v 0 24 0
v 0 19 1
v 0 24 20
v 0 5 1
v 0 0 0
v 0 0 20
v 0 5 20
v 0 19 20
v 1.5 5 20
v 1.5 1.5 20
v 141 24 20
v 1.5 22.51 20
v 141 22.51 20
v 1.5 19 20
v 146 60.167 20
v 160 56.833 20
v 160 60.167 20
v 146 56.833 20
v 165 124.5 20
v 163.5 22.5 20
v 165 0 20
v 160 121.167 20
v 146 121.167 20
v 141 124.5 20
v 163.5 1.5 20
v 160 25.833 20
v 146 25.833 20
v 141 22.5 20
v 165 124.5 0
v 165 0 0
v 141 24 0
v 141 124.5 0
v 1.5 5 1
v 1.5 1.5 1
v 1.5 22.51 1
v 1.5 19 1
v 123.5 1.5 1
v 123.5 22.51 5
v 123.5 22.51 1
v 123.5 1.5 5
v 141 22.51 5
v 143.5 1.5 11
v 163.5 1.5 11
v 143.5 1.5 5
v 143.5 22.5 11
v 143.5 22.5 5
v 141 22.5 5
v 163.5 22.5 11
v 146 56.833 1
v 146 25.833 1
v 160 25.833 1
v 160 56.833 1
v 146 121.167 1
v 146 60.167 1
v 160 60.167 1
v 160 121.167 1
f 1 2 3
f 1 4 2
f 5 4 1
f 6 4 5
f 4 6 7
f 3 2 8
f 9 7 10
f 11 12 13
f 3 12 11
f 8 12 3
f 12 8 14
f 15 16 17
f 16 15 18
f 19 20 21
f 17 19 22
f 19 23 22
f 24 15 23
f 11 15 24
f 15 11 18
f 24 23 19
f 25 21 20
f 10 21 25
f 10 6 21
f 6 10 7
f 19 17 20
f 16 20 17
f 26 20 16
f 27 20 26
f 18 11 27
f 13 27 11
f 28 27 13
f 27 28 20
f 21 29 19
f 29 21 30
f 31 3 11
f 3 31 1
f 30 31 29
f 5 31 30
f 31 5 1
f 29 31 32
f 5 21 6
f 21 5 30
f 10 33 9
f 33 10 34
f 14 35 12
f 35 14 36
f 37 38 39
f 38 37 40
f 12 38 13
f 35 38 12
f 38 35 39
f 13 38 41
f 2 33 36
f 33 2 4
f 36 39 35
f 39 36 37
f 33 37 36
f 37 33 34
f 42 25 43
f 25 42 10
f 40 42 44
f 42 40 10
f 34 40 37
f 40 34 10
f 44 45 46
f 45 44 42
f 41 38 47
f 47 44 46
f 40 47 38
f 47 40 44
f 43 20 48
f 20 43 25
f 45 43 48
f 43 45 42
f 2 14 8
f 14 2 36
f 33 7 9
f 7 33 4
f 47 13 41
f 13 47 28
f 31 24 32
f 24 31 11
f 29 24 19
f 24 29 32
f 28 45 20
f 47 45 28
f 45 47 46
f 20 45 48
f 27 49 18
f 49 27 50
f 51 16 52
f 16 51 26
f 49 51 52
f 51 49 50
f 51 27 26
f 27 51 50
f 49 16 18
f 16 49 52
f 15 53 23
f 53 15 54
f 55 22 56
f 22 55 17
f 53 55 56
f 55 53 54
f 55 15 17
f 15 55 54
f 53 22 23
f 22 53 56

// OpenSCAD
FloorThickness = 1;
Padding = 1;
ComponentHeight = 2;
_min=.01;

// Retailer physical dimensions
RetailerWidth = 20;
RetailerLengthSmall = 120;
RetailerLengthMedium = 140;
RetailerLengthLarge = 160;
RetailerLengthPadding = 2;

// retailer tray parameters
RetailerTrayWidth = 24;  //hardcoded because this is the physical space in the box
RetailerWalls = (RetailerTrayWidth - (RetailerWidth + Padding)) / 2;
RetailerTrayLength = RetailerLengthLarge + RetailerLengthPadding + (2 * RetailerWalls);
RetailerTrayHeight = 20;
RetailerTrayCutoutRidgeWidth = 5;

// Research physical dimensions
PatentLength = 30;
TechnologyLength = 60;

// research tray parameters
ResearchTrayWidth = 24; //hardcoded because this is the physical space in the box
ResearchWallsx = (ResearchTrayWidth - ((ComponentHeight * 6) + (Padding*2))) / 2;
ResearchWallsy = (ResearchTrayWidth - ((ComponentHeight * 6) + (Padding*2))) / 3;
ResearchTrayLength = (3 * ResearchWallsy) + (PatentLength + Padding) + (TechnologyLength + Padding);
ResearchTrayHeight = 20; //hardcoded because this is the physical space in the box


//build retailer tray
difference() {
    cube([RetailerTrayLength, RetailerTrayWidth, RetailerTrayHeight]);
    
    // small retailer layer
    translate([RetailerWalls, RetailerWalls, FloorThickness])
        cube([RetailerLengthSmall + RetailerLengthPadding, RetailerWidth + Padding + _min, RetailerTrayHeight]);
    
    // medium retailer layer
    translate([RetailerWalls, RetailerWalls, FloorThickness + (2 * ComponentHeight)])
        cube([RetailerLengthMedium + RetailerLengthPadding, RetailerWidth + Padding + _min, RetailerTrayHeight]);
    
    // large retailer layer
    translate([RetailerWalls, RetailerWalls, FloorThickness + (5 * ComponentHeight)])
        cube([RetailerLengthLarge + RetailerLengthPadding, RetailerWidth + Padding + _min, RetailerTrayHeight]);
    
    // finger cutout
    translate([-_min, RetailerTrayCutoutRidgeWidth, FloorThickness])
        cube([RetailerWalls+(2*_min), RetailerTrayWidth - (2 * RetailerTrayCutoutRidgeWidth), RetailerTrayHeight]);
}
union()

//build technologies tray
difference() {
translate([RetailerTrayLength - ResearchTrayWidth, RetailerTrayWidth - RetailerWalls, 0])
    cube([ResearchTrayWidth, ResearchTrayLength, ResearchTrayHeight]);

    anchorx = RetailerTrayLength - ResearchTrayWidth;
    anchory = RetailerTrayWidth - RetailerWalls;

    translate([anchorx + ResearchWallsx, anchory + ResearchWallsy, FloorThickness])
        cube([ResearchTrayWidth - (2 * ResearchWallsx), PatentLength + Padding, ResearchTrayHeight]);

    anchory2 = RetailerTrayWidth - RetailerWalls + ResearchWallsy + PatentLength + Padding;
    
    translate([anchorx + ResearchWallsx, anchory2 + ResearchWallsy, FloorThickness])
        cube([ResearchTrayWidth - (2 * ResearchWallsx),TechnologyLength + Padding, ResearchTrayHeight]);
    
}
